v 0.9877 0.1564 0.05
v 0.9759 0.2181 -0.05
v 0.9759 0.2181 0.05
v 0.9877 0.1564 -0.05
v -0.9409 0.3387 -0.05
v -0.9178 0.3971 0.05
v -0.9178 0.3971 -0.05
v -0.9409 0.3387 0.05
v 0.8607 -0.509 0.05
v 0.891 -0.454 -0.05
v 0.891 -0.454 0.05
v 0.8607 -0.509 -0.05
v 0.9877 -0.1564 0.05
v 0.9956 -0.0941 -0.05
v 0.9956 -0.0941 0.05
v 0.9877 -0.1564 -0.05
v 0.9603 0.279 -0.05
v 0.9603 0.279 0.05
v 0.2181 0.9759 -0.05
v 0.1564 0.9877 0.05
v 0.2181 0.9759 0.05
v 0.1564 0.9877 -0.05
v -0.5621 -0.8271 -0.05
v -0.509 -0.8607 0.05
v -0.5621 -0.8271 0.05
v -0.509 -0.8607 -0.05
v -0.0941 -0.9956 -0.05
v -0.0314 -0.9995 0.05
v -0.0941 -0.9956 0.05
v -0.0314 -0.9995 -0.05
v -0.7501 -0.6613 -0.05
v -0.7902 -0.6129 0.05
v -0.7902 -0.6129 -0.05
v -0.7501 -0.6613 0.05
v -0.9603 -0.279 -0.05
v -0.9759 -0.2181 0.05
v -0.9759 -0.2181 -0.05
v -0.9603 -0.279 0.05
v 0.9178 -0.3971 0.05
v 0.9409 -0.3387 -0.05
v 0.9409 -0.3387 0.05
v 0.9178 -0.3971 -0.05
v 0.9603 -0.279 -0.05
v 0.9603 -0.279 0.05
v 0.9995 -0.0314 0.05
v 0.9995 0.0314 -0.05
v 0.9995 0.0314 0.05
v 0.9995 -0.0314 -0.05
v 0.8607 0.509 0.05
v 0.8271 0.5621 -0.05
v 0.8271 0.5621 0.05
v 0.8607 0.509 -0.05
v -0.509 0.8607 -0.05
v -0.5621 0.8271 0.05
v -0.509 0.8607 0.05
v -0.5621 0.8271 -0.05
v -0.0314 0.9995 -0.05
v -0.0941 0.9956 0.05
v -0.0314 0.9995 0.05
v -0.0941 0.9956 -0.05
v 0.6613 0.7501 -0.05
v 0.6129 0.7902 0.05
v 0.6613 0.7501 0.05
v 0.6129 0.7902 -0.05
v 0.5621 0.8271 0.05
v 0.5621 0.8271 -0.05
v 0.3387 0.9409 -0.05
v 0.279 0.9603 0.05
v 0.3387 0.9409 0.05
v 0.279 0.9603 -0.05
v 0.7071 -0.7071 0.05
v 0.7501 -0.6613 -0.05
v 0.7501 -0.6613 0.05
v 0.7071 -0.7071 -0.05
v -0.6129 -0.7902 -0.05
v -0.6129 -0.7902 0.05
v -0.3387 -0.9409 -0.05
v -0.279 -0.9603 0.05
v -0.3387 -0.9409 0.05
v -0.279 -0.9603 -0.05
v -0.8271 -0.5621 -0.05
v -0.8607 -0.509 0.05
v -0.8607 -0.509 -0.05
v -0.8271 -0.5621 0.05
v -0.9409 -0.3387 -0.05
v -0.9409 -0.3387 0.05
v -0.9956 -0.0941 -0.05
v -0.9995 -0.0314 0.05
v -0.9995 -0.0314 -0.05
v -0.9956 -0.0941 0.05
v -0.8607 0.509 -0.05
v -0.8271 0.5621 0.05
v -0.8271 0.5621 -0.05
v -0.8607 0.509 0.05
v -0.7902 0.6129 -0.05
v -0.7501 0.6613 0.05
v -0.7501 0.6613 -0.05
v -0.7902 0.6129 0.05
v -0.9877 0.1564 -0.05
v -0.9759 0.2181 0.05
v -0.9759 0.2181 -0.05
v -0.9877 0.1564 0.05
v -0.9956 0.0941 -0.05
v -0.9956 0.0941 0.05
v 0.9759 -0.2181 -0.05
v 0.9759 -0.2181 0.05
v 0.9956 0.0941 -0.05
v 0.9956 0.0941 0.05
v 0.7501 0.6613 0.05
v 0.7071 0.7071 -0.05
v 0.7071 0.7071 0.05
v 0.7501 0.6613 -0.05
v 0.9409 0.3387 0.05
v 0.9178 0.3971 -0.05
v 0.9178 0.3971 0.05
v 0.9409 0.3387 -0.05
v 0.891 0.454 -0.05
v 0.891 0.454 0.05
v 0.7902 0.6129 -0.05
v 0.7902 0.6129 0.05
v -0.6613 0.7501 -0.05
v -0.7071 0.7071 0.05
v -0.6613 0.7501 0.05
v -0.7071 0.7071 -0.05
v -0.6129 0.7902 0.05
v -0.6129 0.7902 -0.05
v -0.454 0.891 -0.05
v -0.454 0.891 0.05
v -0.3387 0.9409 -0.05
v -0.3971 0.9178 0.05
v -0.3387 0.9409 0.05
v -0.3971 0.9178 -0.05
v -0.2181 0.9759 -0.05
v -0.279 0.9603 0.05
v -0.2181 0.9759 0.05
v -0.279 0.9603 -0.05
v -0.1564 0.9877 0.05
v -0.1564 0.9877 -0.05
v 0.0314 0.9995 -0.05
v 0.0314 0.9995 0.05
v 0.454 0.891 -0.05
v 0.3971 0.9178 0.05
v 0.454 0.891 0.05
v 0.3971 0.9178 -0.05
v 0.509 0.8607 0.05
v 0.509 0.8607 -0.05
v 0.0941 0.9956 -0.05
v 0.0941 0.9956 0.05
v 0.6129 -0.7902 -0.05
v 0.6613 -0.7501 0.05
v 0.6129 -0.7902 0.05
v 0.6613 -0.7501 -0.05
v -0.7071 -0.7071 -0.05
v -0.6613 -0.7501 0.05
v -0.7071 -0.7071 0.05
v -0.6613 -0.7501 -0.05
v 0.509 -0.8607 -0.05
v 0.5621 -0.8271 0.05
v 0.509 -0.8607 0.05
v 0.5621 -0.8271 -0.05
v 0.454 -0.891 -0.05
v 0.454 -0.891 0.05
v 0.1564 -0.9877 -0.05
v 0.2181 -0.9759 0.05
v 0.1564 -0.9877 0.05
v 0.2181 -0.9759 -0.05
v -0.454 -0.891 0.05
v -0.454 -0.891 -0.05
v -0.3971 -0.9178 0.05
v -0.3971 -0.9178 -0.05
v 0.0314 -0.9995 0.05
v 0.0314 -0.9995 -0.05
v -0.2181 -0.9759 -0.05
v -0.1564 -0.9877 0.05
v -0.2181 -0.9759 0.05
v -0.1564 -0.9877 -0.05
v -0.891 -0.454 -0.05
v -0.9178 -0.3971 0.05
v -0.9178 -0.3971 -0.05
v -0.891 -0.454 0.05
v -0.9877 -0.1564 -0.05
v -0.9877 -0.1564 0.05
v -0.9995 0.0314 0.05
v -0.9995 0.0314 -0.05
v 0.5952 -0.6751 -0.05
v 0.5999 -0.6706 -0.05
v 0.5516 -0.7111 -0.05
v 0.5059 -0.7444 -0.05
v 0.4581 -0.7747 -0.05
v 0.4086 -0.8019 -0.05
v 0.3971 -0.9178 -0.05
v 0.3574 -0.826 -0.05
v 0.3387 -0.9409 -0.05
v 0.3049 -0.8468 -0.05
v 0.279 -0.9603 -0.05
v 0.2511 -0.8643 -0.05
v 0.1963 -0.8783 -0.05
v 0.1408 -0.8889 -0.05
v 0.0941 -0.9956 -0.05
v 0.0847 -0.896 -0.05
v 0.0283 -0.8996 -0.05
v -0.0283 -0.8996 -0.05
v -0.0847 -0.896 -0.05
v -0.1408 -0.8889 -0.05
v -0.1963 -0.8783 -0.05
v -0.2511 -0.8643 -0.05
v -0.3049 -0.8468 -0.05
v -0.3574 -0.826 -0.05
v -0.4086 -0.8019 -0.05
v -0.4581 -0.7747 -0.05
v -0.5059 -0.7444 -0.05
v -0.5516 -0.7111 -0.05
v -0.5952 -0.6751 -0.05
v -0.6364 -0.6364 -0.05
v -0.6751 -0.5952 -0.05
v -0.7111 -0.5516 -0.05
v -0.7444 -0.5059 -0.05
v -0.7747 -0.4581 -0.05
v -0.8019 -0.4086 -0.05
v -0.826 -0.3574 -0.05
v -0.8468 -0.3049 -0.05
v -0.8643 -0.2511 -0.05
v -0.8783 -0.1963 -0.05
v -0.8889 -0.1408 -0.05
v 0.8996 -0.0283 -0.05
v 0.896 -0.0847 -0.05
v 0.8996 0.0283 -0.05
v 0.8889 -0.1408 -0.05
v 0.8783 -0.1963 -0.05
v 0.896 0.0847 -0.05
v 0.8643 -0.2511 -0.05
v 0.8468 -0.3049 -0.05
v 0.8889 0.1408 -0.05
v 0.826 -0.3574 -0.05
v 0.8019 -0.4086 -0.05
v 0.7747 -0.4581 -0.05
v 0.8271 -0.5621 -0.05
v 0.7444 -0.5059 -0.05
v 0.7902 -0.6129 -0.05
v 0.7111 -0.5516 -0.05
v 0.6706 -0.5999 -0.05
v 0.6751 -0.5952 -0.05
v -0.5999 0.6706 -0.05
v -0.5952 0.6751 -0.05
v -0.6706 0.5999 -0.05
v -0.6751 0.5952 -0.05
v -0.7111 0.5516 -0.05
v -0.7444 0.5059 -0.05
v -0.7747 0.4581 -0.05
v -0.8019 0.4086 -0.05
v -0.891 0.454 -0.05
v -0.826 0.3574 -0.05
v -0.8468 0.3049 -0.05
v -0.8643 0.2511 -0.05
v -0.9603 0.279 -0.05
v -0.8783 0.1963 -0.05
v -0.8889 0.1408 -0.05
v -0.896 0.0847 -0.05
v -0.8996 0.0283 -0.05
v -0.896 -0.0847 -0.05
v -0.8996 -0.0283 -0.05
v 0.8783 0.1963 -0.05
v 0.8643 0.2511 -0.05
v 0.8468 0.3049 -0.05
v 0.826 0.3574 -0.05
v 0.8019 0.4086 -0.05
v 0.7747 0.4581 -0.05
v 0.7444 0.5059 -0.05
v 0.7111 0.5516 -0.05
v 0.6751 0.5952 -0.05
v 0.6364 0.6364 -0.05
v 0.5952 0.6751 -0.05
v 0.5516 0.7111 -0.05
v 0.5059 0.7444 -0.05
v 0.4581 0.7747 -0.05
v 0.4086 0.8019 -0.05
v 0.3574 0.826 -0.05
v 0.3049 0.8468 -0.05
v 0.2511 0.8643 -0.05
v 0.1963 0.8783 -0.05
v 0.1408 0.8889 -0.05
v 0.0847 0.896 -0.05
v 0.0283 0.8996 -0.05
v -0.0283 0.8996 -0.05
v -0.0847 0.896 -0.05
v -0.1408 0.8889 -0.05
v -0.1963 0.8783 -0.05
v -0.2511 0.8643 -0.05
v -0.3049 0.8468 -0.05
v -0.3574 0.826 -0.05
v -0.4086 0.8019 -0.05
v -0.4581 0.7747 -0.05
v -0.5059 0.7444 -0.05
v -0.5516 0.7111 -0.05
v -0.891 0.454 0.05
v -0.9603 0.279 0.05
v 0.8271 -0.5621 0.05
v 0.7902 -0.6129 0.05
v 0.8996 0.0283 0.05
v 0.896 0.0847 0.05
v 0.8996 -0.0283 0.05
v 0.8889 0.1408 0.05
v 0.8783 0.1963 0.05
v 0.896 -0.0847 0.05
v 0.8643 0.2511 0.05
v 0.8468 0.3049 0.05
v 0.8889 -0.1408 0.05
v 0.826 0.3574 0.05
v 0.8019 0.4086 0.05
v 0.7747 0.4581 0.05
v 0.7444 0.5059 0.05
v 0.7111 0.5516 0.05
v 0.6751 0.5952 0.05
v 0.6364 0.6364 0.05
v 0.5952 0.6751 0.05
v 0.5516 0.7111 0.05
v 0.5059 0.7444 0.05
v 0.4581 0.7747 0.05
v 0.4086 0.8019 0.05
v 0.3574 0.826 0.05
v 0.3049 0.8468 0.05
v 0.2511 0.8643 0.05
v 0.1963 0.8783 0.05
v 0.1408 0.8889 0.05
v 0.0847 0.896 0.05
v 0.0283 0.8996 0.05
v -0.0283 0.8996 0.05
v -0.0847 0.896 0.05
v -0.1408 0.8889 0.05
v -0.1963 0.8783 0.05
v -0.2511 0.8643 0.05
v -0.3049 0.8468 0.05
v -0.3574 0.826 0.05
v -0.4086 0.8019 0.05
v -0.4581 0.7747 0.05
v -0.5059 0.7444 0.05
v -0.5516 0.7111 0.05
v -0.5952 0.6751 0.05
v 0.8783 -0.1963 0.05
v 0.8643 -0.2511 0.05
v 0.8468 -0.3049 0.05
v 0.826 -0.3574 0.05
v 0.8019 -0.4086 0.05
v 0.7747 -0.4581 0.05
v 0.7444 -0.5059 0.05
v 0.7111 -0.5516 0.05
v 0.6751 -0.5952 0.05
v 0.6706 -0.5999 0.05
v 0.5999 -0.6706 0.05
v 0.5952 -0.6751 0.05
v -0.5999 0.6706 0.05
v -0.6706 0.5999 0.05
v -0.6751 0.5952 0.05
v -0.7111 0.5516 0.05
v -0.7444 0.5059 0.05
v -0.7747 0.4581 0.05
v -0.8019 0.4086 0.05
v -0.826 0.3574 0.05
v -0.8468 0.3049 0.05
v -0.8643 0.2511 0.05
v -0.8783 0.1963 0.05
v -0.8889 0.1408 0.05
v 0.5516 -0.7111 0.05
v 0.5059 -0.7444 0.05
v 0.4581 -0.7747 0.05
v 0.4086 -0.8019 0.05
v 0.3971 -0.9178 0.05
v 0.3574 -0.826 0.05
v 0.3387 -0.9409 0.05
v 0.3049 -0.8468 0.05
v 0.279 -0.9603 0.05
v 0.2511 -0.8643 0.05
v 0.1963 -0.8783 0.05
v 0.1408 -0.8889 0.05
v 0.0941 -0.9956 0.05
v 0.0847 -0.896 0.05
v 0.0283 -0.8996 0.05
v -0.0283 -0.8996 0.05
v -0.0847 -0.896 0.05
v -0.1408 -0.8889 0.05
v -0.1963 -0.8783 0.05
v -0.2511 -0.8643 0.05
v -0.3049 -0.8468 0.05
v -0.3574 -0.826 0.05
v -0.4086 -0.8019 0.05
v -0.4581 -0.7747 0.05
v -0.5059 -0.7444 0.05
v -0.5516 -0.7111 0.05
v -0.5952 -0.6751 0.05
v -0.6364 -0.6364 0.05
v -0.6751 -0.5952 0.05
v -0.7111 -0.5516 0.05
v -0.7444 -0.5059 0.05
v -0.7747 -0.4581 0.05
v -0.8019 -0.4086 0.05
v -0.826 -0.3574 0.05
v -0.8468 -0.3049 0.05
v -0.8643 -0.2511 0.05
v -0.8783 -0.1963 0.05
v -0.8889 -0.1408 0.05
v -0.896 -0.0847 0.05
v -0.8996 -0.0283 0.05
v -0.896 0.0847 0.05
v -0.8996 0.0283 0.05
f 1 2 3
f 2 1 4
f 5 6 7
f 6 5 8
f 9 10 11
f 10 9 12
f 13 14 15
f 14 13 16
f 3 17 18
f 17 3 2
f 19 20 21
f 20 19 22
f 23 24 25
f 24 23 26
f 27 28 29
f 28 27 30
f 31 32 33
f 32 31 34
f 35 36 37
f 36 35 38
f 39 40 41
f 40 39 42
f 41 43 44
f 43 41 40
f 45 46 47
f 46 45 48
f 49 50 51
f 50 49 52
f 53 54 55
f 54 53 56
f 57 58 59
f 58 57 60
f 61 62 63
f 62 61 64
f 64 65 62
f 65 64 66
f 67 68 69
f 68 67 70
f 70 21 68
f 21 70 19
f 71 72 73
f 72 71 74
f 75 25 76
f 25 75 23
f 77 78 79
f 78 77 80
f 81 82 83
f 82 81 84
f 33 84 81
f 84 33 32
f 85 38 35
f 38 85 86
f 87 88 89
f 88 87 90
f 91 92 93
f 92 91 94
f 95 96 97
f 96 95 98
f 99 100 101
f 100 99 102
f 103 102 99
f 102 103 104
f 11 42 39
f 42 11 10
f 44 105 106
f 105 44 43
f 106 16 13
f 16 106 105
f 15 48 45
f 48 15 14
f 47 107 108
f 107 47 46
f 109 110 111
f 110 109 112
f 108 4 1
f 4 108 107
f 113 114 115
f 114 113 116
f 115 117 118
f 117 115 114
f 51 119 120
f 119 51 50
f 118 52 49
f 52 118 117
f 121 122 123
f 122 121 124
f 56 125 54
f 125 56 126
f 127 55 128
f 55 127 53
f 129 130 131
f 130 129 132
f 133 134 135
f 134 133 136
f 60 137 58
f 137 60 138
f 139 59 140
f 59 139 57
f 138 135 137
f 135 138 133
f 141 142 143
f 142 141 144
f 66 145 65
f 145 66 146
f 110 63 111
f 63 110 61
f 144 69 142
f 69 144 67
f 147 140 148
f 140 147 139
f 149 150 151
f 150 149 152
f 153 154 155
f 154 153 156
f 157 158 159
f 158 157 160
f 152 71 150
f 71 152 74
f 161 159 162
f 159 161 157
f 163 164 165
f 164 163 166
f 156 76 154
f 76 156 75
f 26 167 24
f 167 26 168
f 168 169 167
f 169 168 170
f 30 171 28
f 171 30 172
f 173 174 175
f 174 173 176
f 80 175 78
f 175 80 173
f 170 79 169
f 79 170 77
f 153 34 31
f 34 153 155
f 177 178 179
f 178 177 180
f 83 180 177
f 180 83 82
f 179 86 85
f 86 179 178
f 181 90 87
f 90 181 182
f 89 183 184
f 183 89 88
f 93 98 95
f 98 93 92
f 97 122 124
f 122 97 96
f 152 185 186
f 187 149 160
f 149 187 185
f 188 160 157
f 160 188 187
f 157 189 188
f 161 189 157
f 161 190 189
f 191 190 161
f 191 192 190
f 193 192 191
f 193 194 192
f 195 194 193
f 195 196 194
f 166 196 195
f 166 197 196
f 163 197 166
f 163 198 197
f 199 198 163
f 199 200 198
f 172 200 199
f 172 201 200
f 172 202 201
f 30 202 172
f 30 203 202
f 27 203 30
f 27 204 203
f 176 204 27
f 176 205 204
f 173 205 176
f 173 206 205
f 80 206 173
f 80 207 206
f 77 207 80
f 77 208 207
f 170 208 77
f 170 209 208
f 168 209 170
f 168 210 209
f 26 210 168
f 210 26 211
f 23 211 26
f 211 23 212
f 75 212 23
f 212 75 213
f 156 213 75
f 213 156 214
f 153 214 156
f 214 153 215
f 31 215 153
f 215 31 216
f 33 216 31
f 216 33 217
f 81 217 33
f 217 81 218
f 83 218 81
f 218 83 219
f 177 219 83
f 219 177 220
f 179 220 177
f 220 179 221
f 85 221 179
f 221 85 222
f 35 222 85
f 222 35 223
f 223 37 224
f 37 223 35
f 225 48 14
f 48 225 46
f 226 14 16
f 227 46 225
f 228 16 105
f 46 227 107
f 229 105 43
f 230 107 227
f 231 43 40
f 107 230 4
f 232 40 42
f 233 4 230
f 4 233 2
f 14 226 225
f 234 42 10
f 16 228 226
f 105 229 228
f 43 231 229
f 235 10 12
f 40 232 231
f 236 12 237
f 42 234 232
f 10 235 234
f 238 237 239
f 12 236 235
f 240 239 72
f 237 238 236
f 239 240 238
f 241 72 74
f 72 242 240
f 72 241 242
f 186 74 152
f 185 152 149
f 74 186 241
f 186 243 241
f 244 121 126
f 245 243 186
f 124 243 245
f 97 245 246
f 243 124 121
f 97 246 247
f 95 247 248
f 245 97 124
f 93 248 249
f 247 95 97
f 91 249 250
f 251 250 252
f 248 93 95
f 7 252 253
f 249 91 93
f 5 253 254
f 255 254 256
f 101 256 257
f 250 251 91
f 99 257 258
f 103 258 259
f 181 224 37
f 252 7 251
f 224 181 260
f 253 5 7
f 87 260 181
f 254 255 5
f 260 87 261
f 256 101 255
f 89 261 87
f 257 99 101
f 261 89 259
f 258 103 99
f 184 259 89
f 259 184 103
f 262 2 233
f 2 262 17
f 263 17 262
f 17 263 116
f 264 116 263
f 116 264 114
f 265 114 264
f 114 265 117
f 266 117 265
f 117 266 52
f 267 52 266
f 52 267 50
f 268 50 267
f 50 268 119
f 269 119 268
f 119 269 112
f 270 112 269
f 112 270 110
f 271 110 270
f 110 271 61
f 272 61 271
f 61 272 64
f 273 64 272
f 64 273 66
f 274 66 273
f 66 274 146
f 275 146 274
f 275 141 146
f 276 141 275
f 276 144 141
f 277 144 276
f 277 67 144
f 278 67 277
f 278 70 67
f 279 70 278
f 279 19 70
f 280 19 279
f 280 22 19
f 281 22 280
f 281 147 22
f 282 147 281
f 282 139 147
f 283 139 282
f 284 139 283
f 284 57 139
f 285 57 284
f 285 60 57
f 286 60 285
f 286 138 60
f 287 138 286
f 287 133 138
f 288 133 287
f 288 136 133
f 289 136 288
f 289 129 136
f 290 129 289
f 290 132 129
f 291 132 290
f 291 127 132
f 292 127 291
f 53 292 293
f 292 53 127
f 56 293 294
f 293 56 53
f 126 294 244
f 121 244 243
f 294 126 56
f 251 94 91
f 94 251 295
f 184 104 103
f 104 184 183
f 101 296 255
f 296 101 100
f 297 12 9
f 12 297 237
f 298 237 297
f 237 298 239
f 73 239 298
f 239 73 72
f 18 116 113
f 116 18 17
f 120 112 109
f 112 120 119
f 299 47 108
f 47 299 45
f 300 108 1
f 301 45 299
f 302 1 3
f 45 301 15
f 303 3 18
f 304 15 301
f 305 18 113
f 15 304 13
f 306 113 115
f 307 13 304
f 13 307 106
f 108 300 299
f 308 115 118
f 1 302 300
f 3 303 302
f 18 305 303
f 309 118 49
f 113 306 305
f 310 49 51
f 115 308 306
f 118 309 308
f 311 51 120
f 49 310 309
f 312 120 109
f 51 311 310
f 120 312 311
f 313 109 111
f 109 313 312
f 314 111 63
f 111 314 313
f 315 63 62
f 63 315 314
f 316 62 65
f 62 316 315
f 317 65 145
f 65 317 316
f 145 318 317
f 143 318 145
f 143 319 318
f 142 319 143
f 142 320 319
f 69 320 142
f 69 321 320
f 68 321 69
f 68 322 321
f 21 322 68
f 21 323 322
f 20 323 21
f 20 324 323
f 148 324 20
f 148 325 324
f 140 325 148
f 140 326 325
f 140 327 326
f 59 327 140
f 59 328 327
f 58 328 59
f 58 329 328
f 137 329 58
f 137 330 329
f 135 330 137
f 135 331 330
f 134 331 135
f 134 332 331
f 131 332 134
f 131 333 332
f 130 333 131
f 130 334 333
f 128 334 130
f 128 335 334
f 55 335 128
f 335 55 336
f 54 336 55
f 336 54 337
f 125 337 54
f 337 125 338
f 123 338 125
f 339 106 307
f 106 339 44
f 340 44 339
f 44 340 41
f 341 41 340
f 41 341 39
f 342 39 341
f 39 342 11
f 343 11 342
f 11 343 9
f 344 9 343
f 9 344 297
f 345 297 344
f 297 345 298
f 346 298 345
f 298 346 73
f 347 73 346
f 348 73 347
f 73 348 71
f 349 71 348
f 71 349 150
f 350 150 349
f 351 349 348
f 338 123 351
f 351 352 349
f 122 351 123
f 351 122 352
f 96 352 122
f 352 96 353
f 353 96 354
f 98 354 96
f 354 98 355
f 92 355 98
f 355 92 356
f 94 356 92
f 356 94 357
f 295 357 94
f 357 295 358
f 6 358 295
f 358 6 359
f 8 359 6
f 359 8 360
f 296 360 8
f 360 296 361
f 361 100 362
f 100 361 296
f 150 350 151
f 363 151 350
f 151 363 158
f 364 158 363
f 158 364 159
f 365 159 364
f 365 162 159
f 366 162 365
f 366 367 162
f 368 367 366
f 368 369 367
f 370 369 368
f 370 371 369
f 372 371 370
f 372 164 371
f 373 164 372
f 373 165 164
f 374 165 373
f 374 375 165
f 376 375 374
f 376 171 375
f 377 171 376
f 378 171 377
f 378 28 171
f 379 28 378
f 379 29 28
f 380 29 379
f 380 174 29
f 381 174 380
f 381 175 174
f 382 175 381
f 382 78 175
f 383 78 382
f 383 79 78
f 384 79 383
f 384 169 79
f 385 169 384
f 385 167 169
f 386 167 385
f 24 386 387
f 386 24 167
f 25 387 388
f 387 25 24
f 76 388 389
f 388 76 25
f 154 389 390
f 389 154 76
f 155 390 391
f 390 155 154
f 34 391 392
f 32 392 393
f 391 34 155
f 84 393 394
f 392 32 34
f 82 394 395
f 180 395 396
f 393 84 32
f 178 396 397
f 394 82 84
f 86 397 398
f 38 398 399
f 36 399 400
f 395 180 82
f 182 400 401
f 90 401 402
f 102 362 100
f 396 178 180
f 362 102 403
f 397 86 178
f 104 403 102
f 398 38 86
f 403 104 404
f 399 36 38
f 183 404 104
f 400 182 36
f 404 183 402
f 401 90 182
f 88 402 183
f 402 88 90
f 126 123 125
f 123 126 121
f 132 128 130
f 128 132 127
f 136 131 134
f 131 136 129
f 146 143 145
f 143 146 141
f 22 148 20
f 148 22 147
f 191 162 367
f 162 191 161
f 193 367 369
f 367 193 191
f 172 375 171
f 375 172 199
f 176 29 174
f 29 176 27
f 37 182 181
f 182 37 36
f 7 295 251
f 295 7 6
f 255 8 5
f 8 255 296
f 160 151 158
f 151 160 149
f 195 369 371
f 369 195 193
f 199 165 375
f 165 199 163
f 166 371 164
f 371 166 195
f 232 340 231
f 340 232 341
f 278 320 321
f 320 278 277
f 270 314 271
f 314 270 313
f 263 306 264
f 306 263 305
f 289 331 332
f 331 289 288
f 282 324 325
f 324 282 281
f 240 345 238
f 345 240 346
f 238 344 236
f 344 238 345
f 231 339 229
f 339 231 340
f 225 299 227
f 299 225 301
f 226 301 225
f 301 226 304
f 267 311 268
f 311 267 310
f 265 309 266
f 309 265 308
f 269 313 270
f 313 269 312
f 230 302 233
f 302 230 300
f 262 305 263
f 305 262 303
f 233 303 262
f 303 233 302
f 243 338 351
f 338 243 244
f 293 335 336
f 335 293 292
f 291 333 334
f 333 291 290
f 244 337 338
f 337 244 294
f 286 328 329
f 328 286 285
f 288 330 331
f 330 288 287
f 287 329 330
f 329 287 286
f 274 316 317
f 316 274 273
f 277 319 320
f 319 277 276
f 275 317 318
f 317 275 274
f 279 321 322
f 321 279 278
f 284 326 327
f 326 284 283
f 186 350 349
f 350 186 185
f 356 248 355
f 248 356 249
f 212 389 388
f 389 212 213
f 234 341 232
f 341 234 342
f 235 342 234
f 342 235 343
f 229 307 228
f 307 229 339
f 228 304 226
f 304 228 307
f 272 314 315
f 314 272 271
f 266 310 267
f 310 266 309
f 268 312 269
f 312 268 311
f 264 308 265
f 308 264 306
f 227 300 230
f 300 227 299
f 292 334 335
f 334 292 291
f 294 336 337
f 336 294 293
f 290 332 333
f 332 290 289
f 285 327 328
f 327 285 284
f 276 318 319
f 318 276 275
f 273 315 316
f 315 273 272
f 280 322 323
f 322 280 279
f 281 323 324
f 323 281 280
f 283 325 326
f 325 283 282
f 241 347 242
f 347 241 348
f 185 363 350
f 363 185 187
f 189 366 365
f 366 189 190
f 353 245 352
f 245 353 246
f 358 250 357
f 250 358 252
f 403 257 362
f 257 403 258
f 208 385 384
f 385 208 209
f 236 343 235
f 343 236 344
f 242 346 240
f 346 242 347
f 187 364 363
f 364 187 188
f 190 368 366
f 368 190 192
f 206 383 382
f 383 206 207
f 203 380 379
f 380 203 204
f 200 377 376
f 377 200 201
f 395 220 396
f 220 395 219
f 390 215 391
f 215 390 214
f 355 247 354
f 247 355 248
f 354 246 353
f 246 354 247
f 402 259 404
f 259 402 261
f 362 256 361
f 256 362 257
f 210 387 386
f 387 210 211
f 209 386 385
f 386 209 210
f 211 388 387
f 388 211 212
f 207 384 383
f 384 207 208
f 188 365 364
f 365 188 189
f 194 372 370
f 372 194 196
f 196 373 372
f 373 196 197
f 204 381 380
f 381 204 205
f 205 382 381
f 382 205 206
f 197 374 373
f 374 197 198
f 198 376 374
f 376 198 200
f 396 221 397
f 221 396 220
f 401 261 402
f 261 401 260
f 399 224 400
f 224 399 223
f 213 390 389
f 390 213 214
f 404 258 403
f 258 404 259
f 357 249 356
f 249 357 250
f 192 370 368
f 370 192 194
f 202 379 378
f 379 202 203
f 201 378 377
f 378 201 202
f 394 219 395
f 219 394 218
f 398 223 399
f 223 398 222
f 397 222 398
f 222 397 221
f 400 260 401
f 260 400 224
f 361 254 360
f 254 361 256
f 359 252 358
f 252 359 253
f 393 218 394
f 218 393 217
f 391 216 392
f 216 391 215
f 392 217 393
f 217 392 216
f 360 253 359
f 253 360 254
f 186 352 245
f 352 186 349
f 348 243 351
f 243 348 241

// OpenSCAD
outer = 1 ;
inner = outer * 0.9;
thickness = outer * 0.1;
feuilles = 11;
angle_feuille = 360/feuilles;
module interdit()
{

    rotate([0,0,-45]) union(){
        difference(){
            cylinder(r=1, h= thickness, $fn=100, center = true) ;
            cylinder(r=0.9, h= thickness, $fn=100, center = true) ;
            };
        cube( [2*inner,thickness,thickness], center = true);
    }

}


module feuille ()
{

    translate ([0,1,0]) scale([0.5,1]) intersection(){
            translate ([-outer/2,0,0]) cylinder(r=1, h= thickness/10, $fn=100, center = true) ;
            translate ([+outer/2,0,0]) cylinder(r=1, h= thickness/10, $fn=100, center = true) ;
            };
    
}

module pissenlit()
{
    for(i=[0:feuilles])
            {
            translate ([0,0,i*thickness/10]) rotate ([0,3,angle_feuille*i])
                {
                feuille();
                }
             };
}


color("red") interdit();
//color ("green") scale(0.4)  pissenlit();
